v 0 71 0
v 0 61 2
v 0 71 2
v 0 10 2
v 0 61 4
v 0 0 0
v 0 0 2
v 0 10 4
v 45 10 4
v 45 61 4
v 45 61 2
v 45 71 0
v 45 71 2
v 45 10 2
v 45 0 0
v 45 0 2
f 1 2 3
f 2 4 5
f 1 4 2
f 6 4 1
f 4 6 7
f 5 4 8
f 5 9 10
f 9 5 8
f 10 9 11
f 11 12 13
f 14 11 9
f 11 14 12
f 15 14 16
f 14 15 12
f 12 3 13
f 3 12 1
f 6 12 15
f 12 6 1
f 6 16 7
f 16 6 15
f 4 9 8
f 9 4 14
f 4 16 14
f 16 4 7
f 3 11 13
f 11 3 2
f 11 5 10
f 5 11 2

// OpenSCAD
difference() {
    cube([45,71,4]);
    translate([0, 0, 2])
        cube([45, 10, 2]);
    translate([0, 71 - 10, 2])
        cube([45, 10, 2]);
};
